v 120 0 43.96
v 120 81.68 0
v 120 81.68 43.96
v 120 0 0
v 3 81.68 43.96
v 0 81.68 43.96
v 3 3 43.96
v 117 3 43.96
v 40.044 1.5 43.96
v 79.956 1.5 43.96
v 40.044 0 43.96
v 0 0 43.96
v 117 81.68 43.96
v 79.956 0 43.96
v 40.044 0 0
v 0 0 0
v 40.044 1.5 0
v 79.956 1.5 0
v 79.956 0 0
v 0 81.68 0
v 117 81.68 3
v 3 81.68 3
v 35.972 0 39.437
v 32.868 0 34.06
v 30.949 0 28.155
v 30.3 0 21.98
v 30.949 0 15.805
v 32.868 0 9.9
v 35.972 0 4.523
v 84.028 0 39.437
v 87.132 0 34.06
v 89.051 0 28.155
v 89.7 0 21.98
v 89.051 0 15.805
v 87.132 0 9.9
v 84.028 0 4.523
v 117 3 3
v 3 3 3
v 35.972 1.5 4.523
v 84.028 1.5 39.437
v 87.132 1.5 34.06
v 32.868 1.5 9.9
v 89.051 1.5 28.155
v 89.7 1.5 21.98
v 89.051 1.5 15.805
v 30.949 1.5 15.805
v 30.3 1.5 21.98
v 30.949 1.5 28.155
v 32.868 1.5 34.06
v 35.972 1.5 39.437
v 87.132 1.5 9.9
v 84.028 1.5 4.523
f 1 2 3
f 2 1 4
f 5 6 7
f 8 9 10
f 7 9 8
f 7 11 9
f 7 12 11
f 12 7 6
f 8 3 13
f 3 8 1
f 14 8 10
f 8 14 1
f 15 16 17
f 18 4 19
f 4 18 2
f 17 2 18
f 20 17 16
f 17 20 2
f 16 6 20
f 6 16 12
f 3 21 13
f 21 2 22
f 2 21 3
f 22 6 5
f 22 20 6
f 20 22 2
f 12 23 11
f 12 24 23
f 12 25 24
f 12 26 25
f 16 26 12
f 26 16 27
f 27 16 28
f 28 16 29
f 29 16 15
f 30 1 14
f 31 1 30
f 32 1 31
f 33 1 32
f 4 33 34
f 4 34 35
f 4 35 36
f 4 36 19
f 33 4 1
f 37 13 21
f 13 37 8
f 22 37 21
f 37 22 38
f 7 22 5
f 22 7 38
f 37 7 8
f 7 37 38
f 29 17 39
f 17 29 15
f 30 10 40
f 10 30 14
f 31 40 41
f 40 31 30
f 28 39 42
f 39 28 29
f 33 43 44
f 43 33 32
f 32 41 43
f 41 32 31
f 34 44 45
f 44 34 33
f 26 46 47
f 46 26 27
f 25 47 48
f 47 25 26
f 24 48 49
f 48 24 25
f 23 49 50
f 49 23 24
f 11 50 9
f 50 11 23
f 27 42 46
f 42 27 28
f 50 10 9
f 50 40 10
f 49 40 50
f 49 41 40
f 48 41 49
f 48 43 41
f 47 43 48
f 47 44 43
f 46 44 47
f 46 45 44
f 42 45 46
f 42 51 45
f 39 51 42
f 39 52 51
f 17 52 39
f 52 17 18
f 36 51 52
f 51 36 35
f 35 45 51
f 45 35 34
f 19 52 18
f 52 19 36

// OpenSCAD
/* doodle-meta {"version":1,"parameters":{"width":{"label":"Overall width","description":"Changes the body width","unit":"mm","feature":"body_width"},"depth":{"label":"Overall depth","description":"Changes the body depth","unit":"mm","feature":"body_depth"},"height":{"label":"Overall height","description":"Changes the body height","unit":"mm","feature":"body_height"},"wall_thickness":{"label":"Wall thickness","description":"Thickness of the enclosure walls","unit":"mm","feature":"wall"},"window_width":{"label":"Window width","description":"Width of the front window cutout","unit":"mm","feature":"window"},"window_height":{"label":"Window height","description":"Height of the front window cutout","unit":"mm","feature":"window"},"window_center_z":{"label":"Window center height","description":"Vertical position of the window center from the bottom","unit":"mm","feature":"window"}},"features":{"body_width":{"kind":"dimension","axis":"x","label":"Overall width"},"body_depth":{"kind":"dimension","axis":"y","label":"Overall depth"},"body_height":{"kind":"dimension","axis":"z","label":"Overall height"},"wall":{"kind":"region","label":"Wall thickness","min":[0,0,0],"max":[{"parameter":"width","scale":0.5,"offset":0},{"parameter":"depth","scale":0.5,"offset":0},{"parameter":"height","scale":1,"offset":0}]},"window":{"kind":"region","label":"Front window","min":[{"parameter":"width","scale":0.5,"offset":-0.2475},{"parameter":"depth","scale":0,"offset":0},{"parameter":"window_center_z","scale":1,"offset":-0.2924}],"max":[{"parameter":"width","scale":0.5,"offset":0.2475},{"parameter":"depth","scale":1,"offset":0},{"parameter":"window_center_z","scale":1,"offset":0.2924}]}}} */

// Top-level parameters (user-editable)
width = 120.0;
depth = 81.68;
height = 43.96;
wall_thickness = 3.0;
window_width = 59.4;
window_height = 25.8;
window_center_z = 21.98;

// Derived constants (not user-editable)
eps = 0.01;

// Main design
module enclosure() {
    difference() {
        // Outer solid box
        cube([width, depth, height], center=false);
        
        // Internal cavity for open-top shell
        // Cavity starts at wall_thickness from bottom, sides, and back
        // Top is open (no top wall)
        translate([wall_thickness, wall_thickness, wall_thickness]) {
            cube([width - 2*wall_thickness, depth - wall_thickness, height - wall_thickness], center=false);
        }
        
        // Front window cutout
        // Centered in X, centered in Z at window_center_z
        // Cuts through the front wall (Y from -eps to wall_thickness+eps)
        translate([width/2, -eps, window_center_z]) {
            rotate([90, 0, 0]) {
                cylinder(h=wall_thickness + 2*eps, d=window_width, center=true);
            }
        }
    }
}

// Instantiate the design
enclosure();
